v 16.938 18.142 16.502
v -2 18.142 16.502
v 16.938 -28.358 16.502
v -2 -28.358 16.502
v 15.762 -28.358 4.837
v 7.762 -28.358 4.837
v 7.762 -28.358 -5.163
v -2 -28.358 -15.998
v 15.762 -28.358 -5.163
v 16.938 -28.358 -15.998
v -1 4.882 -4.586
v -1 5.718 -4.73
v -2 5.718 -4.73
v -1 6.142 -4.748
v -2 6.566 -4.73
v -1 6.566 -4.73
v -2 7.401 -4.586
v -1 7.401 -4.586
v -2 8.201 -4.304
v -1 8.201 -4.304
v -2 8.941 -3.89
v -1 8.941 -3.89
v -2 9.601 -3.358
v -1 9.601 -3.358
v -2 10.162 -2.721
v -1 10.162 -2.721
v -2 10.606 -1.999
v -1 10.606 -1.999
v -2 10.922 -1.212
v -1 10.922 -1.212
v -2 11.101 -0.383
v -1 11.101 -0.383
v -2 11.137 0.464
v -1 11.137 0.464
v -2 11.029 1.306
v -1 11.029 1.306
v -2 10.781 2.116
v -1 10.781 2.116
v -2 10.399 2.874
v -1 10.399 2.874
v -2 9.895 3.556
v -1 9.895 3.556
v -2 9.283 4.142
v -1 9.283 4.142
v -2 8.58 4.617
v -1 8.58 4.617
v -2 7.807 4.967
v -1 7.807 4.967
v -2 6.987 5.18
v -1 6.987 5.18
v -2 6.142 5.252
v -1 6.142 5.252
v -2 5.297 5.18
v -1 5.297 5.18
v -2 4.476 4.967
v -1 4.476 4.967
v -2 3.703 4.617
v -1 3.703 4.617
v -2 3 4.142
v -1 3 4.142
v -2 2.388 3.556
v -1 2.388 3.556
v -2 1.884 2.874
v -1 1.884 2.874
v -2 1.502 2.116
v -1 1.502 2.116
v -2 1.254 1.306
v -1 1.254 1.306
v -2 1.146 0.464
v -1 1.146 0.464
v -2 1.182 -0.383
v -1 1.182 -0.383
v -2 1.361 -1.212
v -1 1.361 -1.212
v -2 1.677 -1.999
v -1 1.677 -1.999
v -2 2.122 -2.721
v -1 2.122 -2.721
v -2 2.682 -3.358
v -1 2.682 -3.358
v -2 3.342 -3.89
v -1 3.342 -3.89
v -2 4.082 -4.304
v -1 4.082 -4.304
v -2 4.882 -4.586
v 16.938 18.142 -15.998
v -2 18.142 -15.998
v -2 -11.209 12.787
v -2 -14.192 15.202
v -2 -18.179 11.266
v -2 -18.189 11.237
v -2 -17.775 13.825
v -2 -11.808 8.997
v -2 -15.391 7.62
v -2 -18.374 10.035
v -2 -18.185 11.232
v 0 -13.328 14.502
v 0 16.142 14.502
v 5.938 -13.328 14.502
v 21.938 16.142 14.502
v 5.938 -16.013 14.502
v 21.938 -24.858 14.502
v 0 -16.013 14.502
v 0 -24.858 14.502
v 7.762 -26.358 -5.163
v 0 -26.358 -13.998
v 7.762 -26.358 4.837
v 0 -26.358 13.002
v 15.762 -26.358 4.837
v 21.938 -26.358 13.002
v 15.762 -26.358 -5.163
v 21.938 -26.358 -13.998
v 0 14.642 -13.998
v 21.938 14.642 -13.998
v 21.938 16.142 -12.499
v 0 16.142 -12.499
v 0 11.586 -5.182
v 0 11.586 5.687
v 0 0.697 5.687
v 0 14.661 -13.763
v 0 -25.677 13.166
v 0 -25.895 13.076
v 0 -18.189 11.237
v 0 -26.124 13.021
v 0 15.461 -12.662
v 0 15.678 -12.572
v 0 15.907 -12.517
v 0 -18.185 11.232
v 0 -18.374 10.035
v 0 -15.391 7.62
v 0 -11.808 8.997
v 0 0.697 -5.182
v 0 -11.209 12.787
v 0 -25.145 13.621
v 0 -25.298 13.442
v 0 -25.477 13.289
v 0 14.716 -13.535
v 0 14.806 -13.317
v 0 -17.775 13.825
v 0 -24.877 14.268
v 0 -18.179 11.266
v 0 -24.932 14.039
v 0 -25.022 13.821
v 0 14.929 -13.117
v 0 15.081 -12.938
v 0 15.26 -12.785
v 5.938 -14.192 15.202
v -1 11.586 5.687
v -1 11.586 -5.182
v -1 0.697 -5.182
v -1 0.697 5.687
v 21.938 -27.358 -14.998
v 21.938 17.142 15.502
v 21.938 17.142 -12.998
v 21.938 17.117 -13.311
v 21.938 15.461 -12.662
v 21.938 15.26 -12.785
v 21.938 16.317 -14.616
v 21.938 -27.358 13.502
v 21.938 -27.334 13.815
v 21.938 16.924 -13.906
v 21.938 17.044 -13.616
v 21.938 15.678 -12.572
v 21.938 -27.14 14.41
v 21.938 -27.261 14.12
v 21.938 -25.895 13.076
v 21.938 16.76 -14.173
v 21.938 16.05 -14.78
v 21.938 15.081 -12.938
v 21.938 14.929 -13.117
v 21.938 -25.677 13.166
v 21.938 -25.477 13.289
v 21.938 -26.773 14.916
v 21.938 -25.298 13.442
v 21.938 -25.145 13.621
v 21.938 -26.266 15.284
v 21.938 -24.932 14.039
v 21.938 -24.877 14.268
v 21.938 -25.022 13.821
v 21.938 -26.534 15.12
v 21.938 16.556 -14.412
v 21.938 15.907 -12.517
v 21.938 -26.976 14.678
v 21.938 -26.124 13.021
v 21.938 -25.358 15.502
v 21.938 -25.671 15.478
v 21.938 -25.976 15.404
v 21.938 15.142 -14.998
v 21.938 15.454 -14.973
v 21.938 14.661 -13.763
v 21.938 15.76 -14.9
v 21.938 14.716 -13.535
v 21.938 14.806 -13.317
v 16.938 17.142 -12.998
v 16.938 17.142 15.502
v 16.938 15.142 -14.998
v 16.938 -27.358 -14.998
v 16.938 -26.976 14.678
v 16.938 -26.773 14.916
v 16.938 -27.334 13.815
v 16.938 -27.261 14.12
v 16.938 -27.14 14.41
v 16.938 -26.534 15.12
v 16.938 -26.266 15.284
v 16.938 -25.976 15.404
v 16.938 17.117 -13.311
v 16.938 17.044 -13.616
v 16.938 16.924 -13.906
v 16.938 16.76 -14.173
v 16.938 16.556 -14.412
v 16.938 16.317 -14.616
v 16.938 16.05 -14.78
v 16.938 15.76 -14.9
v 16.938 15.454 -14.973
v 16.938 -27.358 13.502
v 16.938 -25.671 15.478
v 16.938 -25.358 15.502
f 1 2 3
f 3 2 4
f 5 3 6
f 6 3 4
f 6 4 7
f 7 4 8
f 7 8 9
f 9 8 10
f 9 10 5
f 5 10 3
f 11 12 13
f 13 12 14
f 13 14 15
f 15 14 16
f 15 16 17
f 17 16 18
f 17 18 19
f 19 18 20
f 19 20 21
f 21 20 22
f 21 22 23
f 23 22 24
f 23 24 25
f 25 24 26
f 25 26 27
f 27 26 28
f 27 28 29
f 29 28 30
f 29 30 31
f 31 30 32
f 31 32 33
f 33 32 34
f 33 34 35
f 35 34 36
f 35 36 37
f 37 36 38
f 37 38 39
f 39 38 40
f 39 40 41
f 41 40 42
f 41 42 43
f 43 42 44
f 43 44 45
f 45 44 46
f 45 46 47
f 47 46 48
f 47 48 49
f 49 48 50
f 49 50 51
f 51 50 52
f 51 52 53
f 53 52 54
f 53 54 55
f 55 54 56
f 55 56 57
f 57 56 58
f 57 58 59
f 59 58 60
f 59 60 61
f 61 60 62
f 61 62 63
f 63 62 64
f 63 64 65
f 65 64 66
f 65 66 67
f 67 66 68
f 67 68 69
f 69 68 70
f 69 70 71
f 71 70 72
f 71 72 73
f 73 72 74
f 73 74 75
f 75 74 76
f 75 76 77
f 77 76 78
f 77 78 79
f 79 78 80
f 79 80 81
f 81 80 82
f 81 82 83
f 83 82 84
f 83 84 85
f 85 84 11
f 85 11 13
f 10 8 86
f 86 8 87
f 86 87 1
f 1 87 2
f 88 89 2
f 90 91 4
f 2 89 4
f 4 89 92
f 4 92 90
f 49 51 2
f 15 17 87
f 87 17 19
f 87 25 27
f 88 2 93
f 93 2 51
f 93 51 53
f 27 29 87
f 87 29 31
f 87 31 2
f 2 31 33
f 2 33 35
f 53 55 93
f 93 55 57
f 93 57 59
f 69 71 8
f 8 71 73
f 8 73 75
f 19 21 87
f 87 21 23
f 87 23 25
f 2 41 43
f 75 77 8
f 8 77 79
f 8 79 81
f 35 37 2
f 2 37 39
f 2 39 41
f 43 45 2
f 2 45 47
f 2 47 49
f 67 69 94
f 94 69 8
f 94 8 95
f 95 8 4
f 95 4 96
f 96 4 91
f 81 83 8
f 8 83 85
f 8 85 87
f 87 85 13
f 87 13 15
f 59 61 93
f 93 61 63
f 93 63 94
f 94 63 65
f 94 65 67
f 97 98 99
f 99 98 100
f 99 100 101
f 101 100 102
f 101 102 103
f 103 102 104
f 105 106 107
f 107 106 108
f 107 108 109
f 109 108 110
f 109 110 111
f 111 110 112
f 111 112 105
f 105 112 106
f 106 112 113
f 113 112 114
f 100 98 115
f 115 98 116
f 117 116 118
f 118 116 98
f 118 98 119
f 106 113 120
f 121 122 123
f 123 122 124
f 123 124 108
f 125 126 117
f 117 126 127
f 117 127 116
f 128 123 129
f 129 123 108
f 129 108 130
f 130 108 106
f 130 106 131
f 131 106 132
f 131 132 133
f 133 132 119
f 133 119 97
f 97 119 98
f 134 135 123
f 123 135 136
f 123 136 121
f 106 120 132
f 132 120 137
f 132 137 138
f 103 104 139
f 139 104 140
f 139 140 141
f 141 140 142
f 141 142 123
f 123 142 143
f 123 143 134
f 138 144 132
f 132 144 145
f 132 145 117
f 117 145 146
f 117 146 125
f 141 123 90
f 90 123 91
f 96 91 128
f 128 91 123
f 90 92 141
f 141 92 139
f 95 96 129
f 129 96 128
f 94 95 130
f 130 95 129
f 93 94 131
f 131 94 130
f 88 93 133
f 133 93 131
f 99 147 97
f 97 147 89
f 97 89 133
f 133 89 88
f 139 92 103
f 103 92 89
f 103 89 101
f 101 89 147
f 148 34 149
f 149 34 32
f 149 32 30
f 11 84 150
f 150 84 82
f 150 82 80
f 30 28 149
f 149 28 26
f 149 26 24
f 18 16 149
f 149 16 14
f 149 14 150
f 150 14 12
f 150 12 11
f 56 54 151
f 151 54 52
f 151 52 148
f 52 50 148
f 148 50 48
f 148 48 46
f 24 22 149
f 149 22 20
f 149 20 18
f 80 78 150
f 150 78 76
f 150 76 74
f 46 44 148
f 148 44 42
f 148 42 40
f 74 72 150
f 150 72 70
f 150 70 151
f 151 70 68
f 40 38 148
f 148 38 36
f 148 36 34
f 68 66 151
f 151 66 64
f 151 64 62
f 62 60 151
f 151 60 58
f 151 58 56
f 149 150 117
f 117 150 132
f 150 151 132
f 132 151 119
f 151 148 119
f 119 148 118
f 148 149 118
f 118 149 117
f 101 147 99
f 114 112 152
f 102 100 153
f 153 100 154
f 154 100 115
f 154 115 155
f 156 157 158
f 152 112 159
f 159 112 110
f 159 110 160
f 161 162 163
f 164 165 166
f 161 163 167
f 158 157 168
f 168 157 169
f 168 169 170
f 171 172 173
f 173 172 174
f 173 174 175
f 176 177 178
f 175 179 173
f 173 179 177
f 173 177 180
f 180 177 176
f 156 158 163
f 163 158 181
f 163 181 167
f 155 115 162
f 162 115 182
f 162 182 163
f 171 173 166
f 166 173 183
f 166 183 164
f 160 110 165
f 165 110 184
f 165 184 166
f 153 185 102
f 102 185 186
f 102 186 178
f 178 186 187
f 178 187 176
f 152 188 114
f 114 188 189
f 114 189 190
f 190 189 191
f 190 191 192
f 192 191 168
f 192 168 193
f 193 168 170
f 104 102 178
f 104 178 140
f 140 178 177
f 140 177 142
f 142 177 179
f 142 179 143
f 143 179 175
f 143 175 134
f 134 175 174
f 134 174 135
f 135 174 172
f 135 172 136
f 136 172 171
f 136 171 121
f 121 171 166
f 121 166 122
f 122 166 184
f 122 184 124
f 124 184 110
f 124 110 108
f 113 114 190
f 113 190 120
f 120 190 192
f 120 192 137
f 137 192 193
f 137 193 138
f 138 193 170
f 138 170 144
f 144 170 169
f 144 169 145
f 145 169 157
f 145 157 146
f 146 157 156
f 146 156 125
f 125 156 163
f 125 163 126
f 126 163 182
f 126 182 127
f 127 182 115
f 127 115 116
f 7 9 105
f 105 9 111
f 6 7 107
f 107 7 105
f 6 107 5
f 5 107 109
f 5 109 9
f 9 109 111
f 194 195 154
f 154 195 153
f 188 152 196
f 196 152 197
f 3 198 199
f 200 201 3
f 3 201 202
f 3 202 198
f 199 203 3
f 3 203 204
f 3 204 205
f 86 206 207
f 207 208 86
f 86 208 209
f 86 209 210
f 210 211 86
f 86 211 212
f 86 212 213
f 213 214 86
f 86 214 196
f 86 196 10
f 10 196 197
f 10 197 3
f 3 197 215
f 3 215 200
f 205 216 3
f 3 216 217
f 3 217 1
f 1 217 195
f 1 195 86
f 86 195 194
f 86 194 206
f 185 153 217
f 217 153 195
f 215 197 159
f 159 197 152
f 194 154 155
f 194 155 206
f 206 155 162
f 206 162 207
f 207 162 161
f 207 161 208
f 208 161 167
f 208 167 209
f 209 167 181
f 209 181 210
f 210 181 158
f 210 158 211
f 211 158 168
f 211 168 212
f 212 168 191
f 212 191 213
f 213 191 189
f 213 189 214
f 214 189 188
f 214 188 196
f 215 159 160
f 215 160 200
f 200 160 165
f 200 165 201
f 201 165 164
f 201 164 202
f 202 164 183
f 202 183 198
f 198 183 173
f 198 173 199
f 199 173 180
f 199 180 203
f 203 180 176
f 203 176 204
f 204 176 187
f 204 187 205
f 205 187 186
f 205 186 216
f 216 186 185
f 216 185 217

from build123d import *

# Parameters (mm, degrees)
SKETCH9_W           = 28.5
SKETCH9_H           = 42.5
BOSS_EXTRUDE2_DEPTH = 20
SHELL1_T            = 2
SKETCH13_R          = 4
CUT_EXTRUDE3_DEPTH  = 20
CUT_EXTRUDE4_DEPTH  = 45
SKETCH16_R          = 5
CUT_EXTRUDE5_DEPTH  = 9
CUT_EXTRUDE6_DEPTH  = 9
SKETCH18_W          = 10.869116721
SKETCH18_H          = 10.889459445
CUT_EXTRUDE7_DEPTH  = 1
SKETCH19_W          = 32.5
SKETCH19_H          = 46.5
SKETCH19_W_2        = 28.5
SKETCH19_H_2        = 42.5
BOSS_EXTRUDE3_DEPTH = 16
SKETCH21_R          = 1.5
BOSS_EXTRUDE4_DEPTH = 23.937925
SKETCH22_R          = 1.499227017
BOSS_EXTRUDE5_DEPTH = 23.937925
SKETCH24_W          = 8
SKETCH24_H          = 10
CUT_EXTRUDE9_DEPTH  = 25
CUT_EXTRUDE11_DEPTH = 5
CUT_EXTRUDE12_DEPTH = 5
FILLET1_R           = 2


with BuildPart() as part:
    # Sketch9 → Boss-Extrude2 (new body)
    with BuildSketch(Plane(origin=(0, 0, 0), x_dir=(0, 0, -1), z_dir=(1, 0, 0))):
        with Locations((-0.252212389, -5.10840708)):
            Rectangle(SKETCH9_W, SKETCH9_H)
    extrude(amount=BOSS_EXTRUDE2_DEPTH)

    # Shell1
    shell1_openings = [part.faces().sort_by_distance(p)[0] for p in [
        (20, -5.10840708, 0.252212389),
    ]]
    offset(amount=SHELL1_T, openings=shell1_openings, kind=Kind.INTERSECTION)

    # Sketch13 → Cut-Extrude3 (cut)
    with BuildSketch(Plane.ZY.offset(2)):
        with Locations((0.252212389, 6.14159292)):
            Circle(SKETCH13_R)
        Polygon((13.97143347, -17.263089004), (14.536325863, -14.432147479), (12.367104782, -12.527465555), (9.632991308, -13.453725155), (9.068098916, -16.28466668), (11.237319997, -18.189348605), align=None)
    extrude(amount=-CUT_EXTRUDE3_DEPTH, mode=Mode.SUBTRACT)

    # Sketch14 → Cut-Extrude4 (cut)
    with BuildSketch(Plane.XY.offset(16.502212389)):
        Polygon((5.937924746, 21.010526575), (5.937924746, -38.52738051), (34.577859994, -38.52738051), (26.806020853, 26.17065701), align=None)
    extrude(amount=-CUT_EXTRUDE4_DEPTH, mode=Mode.SUBTRACT)

    # Sketch16 → Cut-Extrude5 (cut)
    with BuildSketch(Plane.ZY.offset(2)):
        with Locations((0.252212389, 6.14159292)):
            Circle(SKETCH16_R)
    extrude(amount=-CUT_EXTRUDE5_DEPTH, mode=Mode.SUBTRACT)

    # Sketch17 → Cut-Extrude6 (cut)
    with BuildSketch(Plane.ZY.offset(2)):
        Polygon((13.82530443, -17.774965015), (15.201707449, -14.192469286), (12.787376648, -11.209221442), (8.996642829, -11.808469327), (7.62023981, -15.390965055), (10.034570611, -18.3742129), align=None)
    extrude(amount=-CUT_EXTRUDE6_DEPTH, mode=Mode.SUBTRACT)

    # Sketch18 → Cut-Extrude7 (cut)
    with BuildSketch(Plane(origin=(0, 0, 0), x_dir=(0, 0, -1), z_dir=(1, 0, 0))):
        with Locations((-0.252212389, 6.141592921)):
            Rectangle(SKETCH18_W, SKETCH18_H)
    extrude(amount=-CUT_EXTRUDE7_DEPTH, mode=Mode.SUBTRACT)

    # Sketch19 → Boss-Extrude3 (add)
    with BuildSketch(Plane(origin=(5.937924746, 0, 0), x_dir=(0, 0, -1), z_dir=(1, 0, 0))):
        with Locations((-0.252212389, -5.10840708)):
            Rectangle(SKETCH19_W, SKETCH19_H)
        with Locations((-0.252212389, -5.10840708)):
            Rectangle(SKETCH19_W_2, SKETCH19_H_2, mode=Mode.SUBTRACT)
    extrude(amount=BOSS_EXTRUDE3_DEPTH)

    # Sketch21 → Boss-Extrude4 (add)
    with BuildSketch(Plane(origin=(21.937924746, 0, 0), x_dir=(0, 0, -1), z_dir=(1, 0, 0))):
        with Locations((-14.502212389, -26.35840708)):
            Circle(SKETCH21_R)
    extrude(amount=-BOSS_EXTRUDE4_DEPTH)

    # Sketch22 → Boss-Extrude5 (add)
    with BuildSketch(Plane(origin=(21.937924746, 0, 0), x_dir=(0, 0, -1), z_dir=(1, 0, 0))):
        with Locations((13.997787611, 16.14159292)):
            Circle(SKETCH22_R)
    extrude(amount=-BOSS_EXTRUDE5_DEPTH)

    # Sketch24 → Cut-Extrude9 (cut)
    with BuildSketch(Plane.XZ.offset(28.35840708)):
        with Locations((11.762438337, -0.163014209)):
            Rectangle(SKETCH24_W, SKETCH24_H)
    extrude(amount=-CUT_EXTRUDE9_DEPTH, mode=Mode.SUBTRACT)

    # Sketch25 → Cut-Extrude11 (cut)
    with BuildSketch(Plane(origin=(21.937924746, 0, 0), x_dir=(0, 0, -1), z_dir=(1, 0, 0))):
        Polygon((15.997787611, 18.14159292), (15.997787611, -28.35840708), (14.997787611, -28.35840708), (14.997787611, -27.35840708), (14.997787611, 17.14159292), (-14.502212389, 17.14159292), (-16.502212389, 17.14159292), (-16.502212389, 18.14159292), align=None)
    extrude(amount=-CUT_EXTRUDE11_DEPTH, mode=Mode.SUBTRACT)

    # Sketch26 → Cut-Extrude12 (cut)
    with BuildSketch(Plane(origin=(21.937924746, 0, 0), x_dir=(0, 0, -1), z_dir=(1, 0, 0))):
        Polygon((14.997787611, -28.35840708), (14.997787611, -27.35840708), (-15.502212389, -27.35840708), (-15.502212389, 17.14159292), (-16.502212389, 17.14159292), (-16.502212389, -28.35840708), align=None)
    extrude(amount=-CUT_EXTRUDE12_DEPTH, mode=Mode.SUBTRACT)

    # Fillet1
    fillet1_edges = [part.edges().sort_by_distance(p)[0] for p in [
        (19.437924746, 17.14159292, -14.997787611),
        (19.437924746, -27.35840708, 15.502212389),
    ]]
    fillet(fillet1_edges, radius=FILLET1_R)


solid = part.part
